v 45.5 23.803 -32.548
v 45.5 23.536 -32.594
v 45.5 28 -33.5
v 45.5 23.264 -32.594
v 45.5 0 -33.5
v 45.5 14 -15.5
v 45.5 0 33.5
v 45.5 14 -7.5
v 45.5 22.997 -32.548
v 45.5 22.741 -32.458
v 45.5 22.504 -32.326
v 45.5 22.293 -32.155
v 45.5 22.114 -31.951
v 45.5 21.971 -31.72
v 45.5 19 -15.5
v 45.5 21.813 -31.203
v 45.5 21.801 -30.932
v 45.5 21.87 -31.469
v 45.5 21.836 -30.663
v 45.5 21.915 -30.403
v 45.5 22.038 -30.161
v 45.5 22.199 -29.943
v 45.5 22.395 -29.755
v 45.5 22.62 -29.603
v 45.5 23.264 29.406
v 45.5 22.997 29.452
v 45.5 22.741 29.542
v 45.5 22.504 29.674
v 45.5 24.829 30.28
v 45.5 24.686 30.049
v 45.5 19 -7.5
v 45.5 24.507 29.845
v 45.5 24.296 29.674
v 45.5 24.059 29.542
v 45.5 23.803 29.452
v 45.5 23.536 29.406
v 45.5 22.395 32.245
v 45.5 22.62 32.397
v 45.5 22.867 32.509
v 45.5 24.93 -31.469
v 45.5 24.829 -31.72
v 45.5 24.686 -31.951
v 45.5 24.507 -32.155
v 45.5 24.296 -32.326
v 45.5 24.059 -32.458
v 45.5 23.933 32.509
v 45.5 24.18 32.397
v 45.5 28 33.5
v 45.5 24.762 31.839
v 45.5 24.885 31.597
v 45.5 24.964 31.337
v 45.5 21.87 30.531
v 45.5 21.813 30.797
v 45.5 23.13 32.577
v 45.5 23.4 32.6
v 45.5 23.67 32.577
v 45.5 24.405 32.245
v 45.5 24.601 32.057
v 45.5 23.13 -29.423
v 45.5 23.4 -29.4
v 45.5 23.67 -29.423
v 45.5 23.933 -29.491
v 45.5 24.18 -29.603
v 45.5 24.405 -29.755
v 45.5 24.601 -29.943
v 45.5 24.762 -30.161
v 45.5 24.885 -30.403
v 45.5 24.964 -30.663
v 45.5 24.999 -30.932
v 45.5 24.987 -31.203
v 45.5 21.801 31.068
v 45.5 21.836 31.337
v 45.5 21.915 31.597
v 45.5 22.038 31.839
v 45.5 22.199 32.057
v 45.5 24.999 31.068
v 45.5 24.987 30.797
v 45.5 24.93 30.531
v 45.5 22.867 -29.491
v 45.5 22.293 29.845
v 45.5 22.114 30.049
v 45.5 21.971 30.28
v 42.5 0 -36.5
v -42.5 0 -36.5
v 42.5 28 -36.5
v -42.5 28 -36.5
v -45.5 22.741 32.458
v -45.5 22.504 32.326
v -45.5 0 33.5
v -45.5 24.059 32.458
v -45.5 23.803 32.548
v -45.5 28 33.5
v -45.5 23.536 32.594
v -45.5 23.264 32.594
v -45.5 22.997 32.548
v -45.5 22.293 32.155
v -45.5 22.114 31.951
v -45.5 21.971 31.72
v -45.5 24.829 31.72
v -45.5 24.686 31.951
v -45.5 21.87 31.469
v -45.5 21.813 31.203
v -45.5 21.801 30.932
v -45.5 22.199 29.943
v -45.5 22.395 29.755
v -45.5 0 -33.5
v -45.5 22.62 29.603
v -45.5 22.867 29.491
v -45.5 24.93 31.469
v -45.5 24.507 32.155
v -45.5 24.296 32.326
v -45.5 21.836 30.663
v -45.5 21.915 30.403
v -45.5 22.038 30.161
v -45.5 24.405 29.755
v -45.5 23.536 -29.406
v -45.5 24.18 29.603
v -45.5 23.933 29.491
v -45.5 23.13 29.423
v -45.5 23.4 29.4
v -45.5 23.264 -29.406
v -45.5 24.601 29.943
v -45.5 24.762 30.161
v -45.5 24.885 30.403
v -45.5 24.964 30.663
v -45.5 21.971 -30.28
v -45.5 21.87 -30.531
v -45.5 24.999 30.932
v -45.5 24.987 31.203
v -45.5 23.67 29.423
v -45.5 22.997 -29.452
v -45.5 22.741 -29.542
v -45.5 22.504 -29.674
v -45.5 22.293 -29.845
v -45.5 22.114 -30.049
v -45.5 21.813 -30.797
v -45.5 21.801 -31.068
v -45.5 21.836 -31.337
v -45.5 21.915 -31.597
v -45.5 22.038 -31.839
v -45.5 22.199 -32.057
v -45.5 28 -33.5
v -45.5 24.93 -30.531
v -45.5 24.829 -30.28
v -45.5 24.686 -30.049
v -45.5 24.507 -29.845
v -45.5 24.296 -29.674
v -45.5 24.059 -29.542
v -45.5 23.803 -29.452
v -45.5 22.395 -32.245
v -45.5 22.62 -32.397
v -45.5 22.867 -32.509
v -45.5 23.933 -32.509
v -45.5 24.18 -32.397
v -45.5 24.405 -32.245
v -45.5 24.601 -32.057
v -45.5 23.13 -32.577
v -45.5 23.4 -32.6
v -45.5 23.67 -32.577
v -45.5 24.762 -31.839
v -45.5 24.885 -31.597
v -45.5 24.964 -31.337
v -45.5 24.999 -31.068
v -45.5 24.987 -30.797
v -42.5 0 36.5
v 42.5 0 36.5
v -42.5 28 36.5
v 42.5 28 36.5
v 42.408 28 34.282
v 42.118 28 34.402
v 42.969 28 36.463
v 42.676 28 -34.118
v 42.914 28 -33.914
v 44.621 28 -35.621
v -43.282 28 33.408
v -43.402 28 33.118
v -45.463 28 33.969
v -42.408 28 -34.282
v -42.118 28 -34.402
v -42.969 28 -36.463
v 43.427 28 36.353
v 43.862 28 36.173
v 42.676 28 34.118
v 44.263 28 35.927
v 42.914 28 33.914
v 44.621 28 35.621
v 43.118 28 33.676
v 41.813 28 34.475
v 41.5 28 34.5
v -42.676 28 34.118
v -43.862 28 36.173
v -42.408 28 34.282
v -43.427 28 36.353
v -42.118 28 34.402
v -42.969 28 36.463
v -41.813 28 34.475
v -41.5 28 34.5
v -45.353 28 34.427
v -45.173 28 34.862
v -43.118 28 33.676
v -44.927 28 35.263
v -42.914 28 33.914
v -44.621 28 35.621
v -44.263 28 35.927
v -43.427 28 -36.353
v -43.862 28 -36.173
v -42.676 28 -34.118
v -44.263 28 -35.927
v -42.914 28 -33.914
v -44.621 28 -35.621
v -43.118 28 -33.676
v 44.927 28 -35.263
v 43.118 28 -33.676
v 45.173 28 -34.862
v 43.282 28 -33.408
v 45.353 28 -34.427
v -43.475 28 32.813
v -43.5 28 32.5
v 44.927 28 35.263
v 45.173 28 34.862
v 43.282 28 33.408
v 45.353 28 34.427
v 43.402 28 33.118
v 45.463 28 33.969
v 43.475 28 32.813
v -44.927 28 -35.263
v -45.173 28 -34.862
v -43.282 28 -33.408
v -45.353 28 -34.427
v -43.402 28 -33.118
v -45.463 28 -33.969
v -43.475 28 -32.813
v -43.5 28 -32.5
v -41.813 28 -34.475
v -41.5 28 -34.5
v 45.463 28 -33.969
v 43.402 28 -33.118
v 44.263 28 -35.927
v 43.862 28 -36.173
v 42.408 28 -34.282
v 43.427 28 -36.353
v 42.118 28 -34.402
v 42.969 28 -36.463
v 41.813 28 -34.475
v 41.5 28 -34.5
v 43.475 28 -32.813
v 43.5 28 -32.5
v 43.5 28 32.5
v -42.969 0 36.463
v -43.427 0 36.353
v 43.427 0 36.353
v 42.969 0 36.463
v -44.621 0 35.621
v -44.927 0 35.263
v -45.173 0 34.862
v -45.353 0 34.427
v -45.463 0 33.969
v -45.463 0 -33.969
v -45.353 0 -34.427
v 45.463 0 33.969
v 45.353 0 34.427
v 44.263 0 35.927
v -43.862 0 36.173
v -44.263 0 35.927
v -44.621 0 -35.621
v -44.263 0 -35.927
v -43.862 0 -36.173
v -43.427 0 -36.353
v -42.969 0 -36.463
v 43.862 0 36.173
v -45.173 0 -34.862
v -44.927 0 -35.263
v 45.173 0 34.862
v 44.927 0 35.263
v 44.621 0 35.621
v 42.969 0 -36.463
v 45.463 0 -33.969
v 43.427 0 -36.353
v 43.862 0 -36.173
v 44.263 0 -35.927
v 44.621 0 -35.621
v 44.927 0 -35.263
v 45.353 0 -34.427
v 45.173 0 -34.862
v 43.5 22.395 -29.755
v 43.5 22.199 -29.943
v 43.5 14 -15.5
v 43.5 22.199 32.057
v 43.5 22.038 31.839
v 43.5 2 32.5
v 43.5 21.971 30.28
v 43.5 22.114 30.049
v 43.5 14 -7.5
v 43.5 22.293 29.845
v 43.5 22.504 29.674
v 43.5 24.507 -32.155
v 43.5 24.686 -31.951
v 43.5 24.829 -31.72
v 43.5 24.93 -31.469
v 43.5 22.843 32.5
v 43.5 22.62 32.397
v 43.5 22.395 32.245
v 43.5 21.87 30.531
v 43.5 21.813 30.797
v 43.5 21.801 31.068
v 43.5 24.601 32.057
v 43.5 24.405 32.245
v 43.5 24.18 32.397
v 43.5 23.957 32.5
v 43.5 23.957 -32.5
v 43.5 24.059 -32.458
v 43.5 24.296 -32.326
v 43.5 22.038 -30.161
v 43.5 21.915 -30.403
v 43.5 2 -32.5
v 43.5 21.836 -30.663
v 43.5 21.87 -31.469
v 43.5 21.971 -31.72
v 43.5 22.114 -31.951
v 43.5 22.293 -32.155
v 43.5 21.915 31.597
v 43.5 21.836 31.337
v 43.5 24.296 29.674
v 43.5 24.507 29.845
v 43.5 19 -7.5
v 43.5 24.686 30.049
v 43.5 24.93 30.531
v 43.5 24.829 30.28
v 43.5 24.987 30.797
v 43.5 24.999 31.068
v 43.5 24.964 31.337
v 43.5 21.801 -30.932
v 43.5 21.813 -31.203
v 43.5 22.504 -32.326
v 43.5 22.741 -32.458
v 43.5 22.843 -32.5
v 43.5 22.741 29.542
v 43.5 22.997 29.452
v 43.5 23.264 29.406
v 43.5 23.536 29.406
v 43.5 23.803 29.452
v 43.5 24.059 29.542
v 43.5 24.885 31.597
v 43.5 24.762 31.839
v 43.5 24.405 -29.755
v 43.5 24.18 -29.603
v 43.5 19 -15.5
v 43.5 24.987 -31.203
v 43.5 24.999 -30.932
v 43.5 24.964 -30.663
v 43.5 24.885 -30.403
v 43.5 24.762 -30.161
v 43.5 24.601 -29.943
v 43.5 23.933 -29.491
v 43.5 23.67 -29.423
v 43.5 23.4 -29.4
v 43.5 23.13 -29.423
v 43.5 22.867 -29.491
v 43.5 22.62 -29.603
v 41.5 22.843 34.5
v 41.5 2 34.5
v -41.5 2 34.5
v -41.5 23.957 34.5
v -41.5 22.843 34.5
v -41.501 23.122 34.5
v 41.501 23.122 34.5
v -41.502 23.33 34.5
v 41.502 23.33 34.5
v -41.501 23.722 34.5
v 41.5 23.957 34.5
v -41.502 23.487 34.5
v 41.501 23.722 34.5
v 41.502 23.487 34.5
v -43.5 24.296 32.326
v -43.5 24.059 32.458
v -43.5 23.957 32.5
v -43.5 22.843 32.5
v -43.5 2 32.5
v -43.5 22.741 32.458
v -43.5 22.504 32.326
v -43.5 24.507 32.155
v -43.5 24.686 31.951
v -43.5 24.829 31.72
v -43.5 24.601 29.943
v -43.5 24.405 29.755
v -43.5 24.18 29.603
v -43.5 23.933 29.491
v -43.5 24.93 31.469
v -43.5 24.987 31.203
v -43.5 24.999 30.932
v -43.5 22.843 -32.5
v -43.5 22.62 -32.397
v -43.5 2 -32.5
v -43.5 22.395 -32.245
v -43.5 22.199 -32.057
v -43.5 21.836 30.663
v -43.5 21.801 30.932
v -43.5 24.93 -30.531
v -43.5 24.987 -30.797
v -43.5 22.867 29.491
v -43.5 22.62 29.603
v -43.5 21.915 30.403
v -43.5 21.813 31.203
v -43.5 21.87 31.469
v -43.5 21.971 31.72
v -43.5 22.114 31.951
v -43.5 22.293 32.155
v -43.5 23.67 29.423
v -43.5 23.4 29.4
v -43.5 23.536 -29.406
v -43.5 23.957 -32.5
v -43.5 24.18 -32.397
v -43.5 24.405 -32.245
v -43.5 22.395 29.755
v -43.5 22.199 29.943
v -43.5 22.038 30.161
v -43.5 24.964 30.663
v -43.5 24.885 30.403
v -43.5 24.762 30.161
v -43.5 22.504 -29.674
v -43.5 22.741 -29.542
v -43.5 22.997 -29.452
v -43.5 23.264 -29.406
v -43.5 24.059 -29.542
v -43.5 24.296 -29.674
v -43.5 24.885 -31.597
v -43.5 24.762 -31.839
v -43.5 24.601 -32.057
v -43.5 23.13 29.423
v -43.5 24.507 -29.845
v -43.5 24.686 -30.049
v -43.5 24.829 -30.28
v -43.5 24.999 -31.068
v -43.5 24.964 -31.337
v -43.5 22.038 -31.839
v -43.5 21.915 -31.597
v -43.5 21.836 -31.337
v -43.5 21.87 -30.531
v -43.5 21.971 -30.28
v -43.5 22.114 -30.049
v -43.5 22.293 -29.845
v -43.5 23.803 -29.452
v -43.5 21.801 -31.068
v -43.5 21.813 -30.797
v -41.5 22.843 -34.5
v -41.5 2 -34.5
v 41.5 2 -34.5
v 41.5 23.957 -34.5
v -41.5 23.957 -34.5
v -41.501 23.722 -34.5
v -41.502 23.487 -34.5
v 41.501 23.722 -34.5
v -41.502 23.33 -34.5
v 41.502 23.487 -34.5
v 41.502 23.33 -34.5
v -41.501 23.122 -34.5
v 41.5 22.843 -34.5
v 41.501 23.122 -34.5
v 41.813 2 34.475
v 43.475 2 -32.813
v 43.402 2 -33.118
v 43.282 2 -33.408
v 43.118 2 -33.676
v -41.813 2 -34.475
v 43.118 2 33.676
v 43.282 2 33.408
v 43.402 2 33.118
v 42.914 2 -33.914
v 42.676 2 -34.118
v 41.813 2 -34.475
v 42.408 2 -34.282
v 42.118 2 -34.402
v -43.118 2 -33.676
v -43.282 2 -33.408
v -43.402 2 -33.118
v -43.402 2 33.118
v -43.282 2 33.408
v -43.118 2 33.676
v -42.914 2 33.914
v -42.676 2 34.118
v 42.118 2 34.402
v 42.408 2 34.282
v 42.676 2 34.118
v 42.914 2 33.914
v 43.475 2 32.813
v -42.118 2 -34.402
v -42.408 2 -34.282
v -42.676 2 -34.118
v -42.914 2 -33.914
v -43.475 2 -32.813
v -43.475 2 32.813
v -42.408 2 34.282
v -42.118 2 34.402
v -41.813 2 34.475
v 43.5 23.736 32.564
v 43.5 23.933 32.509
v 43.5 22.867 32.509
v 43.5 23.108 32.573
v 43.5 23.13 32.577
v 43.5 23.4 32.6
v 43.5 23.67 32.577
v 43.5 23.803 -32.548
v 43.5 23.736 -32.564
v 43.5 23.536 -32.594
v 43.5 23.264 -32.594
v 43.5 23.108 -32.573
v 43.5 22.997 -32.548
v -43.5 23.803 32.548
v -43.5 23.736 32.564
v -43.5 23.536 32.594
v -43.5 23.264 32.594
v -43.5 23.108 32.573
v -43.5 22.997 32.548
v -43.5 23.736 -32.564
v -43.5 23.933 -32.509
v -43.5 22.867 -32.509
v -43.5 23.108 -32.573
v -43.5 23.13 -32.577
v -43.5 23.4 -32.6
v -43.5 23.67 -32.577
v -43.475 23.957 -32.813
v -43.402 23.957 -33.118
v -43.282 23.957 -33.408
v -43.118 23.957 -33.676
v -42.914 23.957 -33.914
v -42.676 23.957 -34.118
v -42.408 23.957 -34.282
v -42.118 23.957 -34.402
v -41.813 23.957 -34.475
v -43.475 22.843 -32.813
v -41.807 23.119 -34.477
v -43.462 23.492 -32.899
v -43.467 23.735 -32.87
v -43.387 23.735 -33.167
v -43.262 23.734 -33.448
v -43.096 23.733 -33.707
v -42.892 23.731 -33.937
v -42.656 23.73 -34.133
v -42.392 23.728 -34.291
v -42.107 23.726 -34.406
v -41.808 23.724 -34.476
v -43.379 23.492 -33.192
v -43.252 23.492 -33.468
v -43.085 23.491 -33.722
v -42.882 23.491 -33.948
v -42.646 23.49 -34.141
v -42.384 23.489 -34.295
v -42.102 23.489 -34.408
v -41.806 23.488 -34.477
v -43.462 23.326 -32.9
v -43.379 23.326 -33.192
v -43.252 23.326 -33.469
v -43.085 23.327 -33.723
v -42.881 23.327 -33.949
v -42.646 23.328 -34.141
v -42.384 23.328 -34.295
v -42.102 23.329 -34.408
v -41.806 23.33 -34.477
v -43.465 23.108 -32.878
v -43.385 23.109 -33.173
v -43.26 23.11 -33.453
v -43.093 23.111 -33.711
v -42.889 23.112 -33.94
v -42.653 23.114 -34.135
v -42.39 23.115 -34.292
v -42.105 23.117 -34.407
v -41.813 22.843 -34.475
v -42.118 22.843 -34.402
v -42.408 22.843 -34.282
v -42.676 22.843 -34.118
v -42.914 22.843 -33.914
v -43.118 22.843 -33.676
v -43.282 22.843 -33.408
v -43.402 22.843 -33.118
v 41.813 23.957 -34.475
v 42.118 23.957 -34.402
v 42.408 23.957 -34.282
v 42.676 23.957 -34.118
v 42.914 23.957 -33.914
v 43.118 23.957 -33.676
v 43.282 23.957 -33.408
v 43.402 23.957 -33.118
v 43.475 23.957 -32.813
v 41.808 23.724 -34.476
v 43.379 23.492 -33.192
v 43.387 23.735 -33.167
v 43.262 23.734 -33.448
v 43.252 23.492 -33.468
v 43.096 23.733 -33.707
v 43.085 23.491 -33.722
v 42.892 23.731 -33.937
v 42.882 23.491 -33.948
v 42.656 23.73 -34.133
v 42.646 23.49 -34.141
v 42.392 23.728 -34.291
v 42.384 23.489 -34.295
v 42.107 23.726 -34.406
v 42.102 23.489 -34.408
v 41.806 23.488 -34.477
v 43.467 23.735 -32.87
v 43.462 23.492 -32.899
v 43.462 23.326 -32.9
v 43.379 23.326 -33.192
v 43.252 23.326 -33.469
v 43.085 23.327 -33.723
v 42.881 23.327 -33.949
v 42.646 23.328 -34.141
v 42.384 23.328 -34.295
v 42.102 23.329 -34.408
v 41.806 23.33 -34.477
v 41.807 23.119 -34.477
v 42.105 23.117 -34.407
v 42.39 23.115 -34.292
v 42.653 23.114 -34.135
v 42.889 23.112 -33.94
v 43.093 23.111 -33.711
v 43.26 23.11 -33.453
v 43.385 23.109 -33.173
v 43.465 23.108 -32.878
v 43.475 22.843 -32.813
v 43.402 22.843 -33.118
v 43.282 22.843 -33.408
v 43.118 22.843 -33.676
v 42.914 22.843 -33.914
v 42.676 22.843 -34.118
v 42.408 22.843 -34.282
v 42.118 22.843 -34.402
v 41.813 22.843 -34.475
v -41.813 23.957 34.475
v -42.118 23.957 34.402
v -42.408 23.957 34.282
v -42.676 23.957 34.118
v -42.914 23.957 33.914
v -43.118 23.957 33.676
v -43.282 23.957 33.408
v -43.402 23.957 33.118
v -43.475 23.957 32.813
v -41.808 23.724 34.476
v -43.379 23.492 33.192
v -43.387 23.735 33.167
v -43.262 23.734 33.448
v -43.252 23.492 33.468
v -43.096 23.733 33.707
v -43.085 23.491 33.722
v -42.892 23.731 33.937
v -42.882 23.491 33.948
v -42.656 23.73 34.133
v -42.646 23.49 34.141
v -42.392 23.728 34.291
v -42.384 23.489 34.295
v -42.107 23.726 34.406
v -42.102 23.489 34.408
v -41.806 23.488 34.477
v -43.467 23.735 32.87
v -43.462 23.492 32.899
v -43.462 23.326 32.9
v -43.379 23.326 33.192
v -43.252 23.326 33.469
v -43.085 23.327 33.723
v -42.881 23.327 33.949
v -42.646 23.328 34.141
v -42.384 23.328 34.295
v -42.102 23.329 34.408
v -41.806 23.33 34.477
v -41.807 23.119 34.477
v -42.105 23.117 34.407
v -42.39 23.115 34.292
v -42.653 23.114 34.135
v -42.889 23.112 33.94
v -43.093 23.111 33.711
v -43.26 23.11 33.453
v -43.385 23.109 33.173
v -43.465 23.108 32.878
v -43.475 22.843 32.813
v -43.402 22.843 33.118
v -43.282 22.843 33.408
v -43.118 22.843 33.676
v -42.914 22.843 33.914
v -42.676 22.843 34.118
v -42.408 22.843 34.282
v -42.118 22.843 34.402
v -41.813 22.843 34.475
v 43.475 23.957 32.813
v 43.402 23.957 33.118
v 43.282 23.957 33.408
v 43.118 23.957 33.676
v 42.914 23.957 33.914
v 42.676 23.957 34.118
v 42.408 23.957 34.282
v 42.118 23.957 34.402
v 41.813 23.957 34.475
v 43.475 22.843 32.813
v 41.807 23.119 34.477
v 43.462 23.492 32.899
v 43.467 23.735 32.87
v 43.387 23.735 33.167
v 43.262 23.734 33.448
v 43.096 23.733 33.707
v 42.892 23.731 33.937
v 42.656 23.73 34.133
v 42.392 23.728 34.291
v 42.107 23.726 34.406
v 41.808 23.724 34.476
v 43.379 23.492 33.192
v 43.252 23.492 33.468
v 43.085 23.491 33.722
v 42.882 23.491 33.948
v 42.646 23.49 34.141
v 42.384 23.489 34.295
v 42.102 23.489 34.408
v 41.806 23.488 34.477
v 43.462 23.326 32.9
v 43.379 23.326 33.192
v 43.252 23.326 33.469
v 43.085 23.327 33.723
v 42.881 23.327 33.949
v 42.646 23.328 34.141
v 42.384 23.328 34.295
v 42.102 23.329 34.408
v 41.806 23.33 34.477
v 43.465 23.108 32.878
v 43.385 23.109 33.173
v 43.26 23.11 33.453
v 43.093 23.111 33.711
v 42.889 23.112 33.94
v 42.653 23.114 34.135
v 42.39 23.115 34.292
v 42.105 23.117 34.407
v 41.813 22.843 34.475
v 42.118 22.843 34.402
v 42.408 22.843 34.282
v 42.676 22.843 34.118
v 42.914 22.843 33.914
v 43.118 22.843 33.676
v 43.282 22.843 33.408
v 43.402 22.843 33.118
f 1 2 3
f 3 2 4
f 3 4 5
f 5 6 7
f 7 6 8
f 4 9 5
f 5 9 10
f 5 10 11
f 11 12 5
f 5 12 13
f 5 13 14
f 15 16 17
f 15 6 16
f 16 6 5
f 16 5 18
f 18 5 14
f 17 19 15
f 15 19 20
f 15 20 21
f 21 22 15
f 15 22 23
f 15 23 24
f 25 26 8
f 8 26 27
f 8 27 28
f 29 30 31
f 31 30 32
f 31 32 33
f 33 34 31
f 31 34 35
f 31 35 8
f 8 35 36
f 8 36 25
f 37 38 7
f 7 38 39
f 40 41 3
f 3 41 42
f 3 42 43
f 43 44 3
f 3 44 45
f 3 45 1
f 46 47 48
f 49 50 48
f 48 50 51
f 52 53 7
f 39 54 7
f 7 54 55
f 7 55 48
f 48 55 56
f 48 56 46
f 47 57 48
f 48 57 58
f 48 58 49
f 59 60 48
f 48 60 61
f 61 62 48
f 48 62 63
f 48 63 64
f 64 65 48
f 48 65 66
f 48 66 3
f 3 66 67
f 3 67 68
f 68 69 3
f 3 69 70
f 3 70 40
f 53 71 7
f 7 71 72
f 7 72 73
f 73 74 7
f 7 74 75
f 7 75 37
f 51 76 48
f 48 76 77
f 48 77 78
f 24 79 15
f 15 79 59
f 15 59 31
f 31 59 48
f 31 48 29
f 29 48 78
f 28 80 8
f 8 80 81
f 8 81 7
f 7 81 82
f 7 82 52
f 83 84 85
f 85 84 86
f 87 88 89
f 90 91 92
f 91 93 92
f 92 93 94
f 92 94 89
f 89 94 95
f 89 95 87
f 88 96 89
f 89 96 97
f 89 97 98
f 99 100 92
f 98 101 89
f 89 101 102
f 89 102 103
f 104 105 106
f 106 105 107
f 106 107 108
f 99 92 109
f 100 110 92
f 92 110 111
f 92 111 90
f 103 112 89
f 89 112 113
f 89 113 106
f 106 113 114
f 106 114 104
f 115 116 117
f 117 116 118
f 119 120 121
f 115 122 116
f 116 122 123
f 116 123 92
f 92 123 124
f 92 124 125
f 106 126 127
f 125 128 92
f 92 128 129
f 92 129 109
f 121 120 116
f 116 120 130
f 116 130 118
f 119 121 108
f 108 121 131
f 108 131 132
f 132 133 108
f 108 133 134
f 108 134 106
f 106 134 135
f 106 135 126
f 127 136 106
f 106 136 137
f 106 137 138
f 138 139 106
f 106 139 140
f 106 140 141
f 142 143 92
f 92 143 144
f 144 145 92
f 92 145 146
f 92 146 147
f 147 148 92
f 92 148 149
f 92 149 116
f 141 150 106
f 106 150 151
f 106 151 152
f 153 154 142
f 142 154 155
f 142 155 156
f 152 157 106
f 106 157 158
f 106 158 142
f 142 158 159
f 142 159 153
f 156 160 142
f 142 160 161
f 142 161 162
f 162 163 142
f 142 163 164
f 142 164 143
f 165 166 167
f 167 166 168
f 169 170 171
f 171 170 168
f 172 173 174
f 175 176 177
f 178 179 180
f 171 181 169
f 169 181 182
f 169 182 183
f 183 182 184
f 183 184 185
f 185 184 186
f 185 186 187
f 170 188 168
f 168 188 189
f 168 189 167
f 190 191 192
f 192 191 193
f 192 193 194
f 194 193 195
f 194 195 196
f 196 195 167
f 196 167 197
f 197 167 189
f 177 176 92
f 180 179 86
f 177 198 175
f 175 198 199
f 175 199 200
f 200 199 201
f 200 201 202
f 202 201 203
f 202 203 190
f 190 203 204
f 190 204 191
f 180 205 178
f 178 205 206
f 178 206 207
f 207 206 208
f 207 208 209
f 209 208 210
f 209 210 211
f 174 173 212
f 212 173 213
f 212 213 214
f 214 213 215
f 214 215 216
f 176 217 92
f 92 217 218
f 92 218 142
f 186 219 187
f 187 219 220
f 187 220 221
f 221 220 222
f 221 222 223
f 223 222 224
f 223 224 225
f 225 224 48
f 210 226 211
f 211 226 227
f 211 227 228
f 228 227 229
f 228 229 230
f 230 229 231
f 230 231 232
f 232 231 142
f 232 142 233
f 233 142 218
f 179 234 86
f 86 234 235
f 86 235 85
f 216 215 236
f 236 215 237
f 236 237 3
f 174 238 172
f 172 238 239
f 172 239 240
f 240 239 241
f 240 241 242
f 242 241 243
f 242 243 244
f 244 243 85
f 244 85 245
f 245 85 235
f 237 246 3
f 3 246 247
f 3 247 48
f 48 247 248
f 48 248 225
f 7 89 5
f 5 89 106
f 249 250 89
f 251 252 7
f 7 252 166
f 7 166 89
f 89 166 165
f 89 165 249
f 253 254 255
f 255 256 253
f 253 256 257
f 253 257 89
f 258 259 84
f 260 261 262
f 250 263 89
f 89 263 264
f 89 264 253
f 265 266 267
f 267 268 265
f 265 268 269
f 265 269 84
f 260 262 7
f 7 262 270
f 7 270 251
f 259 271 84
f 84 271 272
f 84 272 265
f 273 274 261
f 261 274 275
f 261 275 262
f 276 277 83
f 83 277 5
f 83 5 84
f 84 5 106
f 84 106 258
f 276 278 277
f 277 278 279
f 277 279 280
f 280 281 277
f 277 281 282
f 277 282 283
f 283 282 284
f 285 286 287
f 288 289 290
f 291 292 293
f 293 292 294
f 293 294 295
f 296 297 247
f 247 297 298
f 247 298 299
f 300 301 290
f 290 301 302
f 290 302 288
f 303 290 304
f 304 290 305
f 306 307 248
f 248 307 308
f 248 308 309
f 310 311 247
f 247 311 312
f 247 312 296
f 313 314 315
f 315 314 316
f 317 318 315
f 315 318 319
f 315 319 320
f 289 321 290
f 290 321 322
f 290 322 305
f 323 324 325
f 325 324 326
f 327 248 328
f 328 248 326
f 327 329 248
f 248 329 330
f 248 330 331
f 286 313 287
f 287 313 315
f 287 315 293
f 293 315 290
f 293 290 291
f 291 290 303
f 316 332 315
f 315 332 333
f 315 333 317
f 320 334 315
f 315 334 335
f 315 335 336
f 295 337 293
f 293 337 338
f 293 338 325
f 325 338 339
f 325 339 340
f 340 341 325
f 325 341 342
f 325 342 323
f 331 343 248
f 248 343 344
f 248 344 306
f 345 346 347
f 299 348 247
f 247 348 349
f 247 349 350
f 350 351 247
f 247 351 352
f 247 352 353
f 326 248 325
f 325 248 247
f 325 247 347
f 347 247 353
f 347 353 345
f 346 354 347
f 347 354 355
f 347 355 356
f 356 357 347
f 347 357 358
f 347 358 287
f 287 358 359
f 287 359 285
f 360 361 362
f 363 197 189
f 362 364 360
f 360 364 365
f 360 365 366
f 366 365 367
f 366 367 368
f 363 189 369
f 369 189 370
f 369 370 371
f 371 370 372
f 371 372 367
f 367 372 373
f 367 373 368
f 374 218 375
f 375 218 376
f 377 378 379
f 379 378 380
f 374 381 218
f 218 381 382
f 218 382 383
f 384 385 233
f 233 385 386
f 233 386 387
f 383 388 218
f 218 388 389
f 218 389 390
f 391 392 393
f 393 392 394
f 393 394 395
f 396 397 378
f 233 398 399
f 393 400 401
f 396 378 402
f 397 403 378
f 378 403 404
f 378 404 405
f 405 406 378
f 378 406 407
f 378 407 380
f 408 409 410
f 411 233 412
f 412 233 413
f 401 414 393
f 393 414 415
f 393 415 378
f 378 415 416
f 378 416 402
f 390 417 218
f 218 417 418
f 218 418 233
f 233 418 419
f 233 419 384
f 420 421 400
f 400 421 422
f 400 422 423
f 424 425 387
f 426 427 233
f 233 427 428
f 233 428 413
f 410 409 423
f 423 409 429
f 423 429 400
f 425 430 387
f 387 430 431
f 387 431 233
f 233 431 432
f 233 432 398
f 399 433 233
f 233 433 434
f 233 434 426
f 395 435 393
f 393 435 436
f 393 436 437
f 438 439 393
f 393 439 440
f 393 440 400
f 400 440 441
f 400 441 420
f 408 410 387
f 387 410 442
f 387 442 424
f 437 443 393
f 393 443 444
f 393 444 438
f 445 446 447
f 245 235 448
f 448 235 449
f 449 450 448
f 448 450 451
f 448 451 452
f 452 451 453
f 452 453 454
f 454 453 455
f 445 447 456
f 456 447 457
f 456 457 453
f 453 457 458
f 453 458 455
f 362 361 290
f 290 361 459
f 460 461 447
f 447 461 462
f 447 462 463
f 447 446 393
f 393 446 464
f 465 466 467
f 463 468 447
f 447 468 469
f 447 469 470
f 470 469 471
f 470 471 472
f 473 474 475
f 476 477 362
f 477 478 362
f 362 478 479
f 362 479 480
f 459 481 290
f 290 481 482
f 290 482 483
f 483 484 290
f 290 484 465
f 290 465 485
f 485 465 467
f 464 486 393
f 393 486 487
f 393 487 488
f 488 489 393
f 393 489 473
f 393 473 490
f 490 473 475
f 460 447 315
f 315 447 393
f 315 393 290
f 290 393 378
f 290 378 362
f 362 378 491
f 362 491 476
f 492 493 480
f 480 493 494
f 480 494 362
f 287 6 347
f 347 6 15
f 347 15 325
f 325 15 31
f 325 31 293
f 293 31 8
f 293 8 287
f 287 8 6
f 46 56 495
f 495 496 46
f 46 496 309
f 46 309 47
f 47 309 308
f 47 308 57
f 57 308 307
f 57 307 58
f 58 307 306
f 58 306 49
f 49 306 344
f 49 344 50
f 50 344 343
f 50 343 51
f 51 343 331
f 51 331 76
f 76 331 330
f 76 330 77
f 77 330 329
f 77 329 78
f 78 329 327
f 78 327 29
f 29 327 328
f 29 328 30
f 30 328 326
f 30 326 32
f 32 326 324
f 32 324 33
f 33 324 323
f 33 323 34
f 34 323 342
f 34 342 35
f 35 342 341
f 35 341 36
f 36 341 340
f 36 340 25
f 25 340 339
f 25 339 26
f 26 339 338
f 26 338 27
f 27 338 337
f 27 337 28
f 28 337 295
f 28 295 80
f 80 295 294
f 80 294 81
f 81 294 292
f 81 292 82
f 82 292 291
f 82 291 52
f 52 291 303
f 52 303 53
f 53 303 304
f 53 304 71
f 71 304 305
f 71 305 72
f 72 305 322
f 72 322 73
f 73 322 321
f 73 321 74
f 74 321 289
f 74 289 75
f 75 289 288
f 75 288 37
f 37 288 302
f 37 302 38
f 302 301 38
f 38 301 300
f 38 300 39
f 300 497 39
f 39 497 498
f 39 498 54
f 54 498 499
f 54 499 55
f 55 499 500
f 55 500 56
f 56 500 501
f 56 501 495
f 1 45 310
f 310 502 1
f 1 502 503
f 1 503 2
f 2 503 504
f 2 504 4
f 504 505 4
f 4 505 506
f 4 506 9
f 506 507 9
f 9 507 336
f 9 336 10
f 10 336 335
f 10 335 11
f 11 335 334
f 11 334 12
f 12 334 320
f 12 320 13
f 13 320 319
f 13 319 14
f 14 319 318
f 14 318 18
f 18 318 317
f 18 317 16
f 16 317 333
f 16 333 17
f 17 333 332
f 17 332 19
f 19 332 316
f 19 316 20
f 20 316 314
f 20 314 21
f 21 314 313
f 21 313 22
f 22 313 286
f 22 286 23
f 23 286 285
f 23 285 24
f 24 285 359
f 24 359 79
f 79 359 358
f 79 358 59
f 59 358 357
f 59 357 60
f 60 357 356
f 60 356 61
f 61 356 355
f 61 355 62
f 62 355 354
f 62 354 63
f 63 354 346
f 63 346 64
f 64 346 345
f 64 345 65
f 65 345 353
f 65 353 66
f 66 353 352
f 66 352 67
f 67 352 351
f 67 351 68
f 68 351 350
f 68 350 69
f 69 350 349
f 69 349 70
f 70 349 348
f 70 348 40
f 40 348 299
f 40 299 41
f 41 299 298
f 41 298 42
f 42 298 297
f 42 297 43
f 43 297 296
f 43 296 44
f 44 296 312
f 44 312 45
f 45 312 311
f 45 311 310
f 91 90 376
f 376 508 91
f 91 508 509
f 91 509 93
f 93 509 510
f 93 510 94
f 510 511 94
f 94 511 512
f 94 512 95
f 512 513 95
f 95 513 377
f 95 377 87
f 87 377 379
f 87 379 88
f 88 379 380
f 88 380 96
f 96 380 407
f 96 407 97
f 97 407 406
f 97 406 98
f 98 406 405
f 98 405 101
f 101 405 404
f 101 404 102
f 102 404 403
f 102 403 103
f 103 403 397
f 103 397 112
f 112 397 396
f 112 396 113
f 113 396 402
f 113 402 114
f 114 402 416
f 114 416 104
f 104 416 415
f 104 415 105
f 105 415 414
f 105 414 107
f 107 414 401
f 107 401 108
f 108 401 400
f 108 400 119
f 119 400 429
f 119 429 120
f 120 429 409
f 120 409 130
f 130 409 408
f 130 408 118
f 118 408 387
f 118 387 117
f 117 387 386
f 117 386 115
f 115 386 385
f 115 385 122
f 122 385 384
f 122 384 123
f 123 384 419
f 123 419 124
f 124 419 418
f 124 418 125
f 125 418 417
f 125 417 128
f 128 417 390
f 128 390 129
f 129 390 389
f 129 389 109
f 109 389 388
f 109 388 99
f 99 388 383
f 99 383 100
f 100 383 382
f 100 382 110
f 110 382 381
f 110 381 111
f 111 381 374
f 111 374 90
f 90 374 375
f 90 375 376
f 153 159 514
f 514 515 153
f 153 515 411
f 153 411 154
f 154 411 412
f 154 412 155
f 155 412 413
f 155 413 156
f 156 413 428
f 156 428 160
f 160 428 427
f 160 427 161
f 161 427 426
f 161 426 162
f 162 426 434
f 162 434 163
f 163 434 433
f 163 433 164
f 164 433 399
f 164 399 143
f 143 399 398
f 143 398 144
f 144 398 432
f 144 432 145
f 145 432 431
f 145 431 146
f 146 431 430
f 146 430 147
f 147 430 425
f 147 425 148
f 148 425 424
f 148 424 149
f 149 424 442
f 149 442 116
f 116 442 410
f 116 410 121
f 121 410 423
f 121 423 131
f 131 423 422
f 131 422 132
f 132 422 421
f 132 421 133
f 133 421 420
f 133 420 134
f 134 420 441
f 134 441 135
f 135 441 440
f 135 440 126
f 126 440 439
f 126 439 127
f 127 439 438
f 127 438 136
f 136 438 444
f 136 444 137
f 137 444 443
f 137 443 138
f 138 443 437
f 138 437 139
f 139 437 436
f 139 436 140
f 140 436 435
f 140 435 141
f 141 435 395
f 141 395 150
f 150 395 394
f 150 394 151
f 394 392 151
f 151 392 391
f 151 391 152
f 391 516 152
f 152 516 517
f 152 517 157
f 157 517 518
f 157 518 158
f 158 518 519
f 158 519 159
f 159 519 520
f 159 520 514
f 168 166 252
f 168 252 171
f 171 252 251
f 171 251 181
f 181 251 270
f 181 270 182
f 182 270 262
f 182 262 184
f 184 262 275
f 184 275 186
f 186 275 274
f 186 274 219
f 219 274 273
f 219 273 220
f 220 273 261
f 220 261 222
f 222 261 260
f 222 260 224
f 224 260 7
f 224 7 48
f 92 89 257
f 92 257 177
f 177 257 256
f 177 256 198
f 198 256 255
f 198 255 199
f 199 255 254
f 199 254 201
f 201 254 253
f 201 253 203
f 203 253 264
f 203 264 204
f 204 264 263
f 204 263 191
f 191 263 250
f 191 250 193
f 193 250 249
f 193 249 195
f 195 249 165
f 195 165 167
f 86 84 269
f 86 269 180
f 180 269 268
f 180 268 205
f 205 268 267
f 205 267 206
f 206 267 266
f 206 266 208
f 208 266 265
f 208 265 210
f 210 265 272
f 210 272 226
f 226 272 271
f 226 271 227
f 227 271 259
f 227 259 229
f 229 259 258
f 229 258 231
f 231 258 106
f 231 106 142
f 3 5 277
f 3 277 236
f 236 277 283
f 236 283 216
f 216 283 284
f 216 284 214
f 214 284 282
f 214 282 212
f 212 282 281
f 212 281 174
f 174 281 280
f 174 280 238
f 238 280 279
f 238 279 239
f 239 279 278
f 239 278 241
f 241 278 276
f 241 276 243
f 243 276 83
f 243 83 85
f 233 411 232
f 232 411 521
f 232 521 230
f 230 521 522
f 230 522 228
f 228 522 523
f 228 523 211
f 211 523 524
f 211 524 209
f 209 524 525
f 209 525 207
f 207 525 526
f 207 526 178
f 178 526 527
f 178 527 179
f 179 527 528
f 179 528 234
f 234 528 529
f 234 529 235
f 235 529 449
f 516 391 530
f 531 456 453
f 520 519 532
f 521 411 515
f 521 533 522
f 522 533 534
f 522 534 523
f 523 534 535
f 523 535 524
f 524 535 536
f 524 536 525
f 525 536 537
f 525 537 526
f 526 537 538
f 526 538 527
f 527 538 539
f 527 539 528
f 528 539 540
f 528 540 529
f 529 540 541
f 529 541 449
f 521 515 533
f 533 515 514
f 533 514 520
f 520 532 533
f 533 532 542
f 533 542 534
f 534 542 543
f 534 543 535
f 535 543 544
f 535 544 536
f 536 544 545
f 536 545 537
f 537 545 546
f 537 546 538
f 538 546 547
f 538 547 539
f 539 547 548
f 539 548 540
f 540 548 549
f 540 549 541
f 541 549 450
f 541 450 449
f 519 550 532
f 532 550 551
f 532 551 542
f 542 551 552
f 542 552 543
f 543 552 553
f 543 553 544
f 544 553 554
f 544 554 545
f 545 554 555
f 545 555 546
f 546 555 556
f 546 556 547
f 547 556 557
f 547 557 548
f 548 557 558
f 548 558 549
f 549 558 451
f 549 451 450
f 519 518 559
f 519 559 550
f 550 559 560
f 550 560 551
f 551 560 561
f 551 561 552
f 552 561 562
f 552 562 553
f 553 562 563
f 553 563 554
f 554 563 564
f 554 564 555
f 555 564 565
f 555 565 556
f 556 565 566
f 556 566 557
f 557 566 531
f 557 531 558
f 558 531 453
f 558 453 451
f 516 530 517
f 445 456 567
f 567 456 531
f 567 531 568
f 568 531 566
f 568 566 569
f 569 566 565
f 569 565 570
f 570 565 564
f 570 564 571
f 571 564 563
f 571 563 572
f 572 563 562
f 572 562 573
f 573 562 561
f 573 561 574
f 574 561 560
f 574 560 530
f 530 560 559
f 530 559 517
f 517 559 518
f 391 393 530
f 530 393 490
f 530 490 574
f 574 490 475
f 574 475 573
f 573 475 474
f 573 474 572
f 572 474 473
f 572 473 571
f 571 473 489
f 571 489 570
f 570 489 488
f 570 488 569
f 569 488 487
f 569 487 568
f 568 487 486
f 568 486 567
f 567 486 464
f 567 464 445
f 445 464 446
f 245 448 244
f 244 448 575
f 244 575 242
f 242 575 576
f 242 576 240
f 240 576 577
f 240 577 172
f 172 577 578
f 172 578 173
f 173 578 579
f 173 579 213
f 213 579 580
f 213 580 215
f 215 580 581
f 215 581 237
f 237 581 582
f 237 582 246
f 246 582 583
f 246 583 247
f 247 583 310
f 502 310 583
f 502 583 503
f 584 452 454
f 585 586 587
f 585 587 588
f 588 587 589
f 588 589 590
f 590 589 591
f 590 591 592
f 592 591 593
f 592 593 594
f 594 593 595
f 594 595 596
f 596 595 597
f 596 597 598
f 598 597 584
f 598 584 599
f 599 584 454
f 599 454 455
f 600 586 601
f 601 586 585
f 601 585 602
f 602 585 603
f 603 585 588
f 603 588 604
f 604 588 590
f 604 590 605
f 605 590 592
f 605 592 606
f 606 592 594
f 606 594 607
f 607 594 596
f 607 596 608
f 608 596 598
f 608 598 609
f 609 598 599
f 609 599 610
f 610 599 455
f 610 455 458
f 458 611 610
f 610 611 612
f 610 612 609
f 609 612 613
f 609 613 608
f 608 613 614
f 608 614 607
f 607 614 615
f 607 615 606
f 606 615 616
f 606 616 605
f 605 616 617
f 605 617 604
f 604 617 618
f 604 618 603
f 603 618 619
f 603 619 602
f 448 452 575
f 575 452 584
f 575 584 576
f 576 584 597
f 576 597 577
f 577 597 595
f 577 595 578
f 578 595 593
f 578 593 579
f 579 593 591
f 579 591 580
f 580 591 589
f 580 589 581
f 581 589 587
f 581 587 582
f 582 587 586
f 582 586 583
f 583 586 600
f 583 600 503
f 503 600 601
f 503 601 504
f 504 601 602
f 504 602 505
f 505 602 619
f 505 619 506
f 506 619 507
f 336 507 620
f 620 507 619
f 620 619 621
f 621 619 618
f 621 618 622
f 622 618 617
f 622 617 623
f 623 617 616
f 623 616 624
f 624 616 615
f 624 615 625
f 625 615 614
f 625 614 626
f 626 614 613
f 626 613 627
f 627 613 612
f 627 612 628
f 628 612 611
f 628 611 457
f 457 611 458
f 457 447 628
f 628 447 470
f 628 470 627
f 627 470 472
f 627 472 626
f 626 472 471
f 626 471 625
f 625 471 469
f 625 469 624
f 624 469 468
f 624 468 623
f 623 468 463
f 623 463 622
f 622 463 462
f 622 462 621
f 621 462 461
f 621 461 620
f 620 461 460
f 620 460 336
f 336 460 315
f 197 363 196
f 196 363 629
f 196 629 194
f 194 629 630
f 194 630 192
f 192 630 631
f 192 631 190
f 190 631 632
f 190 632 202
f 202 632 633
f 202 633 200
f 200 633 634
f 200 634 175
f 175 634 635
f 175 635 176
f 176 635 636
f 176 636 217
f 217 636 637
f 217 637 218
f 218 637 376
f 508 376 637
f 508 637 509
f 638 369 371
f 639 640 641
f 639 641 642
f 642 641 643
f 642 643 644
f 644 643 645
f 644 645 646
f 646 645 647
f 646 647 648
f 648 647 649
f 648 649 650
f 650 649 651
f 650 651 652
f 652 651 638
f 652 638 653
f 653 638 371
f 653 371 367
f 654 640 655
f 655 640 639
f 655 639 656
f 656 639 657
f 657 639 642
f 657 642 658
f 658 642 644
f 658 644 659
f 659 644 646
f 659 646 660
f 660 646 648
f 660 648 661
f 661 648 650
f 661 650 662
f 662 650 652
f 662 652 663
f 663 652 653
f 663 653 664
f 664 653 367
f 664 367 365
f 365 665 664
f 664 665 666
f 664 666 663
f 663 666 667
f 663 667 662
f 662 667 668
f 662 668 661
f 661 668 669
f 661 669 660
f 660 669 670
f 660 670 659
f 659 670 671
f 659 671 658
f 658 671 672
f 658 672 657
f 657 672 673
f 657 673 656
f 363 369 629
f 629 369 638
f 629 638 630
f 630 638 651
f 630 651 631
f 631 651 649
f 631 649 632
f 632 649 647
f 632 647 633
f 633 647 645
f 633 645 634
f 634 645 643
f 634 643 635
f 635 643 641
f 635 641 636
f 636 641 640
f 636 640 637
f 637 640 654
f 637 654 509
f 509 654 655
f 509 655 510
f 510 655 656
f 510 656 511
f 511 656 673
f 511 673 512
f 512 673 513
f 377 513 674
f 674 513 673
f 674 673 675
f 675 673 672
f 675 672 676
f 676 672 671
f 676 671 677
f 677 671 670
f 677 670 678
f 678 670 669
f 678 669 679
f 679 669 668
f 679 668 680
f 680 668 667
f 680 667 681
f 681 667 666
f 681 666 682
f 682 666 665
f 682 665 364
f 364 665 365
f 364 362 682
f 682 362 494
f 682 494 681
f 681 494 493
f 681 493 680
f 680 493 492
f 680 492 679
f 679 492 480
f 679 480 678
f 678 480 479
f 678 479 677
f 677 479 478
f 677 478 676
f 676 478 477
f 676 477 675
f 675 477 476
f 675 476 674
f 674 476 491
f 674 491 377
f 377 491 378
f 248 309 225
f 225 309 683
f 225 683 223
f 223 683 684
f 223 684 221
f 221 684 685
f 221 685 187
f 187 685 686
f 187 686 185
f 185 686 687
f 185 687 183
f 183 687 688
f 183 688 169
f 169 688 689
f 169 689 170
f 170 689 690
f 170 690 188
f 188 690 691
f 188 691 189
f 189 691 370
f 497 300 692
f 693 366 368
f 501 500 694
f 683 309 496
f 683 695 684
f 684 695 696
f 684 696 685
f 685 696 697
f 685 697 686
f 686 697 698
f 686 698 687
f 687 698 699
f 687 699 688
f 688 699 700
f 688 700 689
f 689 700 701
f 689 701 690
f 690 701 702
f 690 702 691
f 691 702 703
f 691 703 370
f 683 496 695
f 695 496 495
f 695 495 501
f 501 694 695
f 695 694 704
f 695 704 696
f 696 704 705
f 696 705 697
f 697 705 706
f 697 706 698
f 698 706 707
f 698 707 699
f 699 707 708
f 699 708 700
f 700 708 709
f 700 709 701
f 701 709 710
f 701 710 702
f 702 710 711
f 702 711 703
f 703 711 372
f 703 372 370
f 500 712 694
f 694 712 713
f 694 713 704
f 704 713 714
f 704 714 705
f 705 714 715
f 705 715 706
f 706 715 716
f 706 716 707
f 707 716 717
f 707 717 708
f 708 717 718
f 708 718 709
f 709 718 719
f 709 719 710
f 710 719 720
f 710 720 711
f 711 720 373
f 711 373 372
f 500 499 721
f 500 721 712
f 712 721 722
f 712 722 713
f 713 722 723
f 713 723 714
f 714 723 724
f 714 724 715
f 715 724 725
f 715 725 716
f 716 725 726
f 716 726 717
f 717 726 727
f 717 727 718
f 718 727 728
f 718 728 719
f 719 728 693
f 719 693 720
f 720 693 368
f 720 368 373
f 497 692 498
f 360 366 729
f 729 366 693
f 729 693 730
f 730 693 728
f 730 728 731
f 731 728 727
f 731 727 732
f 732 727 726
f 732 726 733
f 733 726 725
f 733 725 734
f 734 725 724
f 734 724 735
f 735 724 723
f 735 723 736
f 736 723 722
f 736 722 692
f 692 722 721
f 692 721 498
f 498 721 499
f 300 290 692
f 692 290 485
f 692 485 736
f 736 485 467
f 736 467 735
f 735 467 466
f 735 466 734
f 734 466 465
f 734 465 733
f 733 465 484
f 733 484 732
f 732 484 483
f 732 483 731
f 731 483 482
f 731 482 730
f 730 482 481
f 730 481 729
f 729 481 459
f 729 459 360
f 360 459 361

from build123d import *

# Parameters (mm, degrees)
SKETCH_1_W               = 91
SKETCH_1_H               = 73
EXTRUDE_1_DEPTH          = 28
SKETCH_2_W               = 87
SKETCH_2_H               = 69
CUT_EXTRUDE_1_DEPTH      = 26
SKETCH_3_W               = 8
SKETCH_3_H               = 5
CUT_EXTRUDE_2_DEPTH      = 26
SKETCH_4_R               = 1.6
CUT_EXTRUDE_5_DEPTH      = 4
MIRROR_2_COPY_1_SKETCH_R = 1.6
MIRROR_2_COPY_1_DEPTH    = 4
FILLET_2_R               = 3
FILLET_3_R               = 3
FILLET_4_R               = 3
FILLET_5_R               = 3
FILLET_6_R               = 2
FILLET_7_R               = 2
FILLET_8_R               = 2
FILLET_9_R               = 2


with BuildPart() as part:
    # 草图1 → 凸台-拉伸1 (new body)
    with BuildSketch(Plane(origin=(0, 0, 0), x_dir=(1, 0, 0), z_dir=(0, 1, 0))):
        Rectangle(SKETCH_1_W, SKETCH_1_H)
    extrude(amount=EXTRUDE_1_DEPTH)

    # 草图2 → 切除-拉伸1 (cut)
    with BuildSketch(Plane(origin=(0, 28, 0), x_dir=(1, 0, 0), z_dir=(0, 1, 0))):
        Rectangle(SKETCH_2_W, SKETCH_2_H)
    extrude(amount=-CUT_EXTRUDE_1_DEPTH, mode=Mode.SUBTRACT)

    # 草图3 → 切除-拉伸2 (cut)
    with BuildSketch(Plane.ZY.offset(-43.5)):
        with Locations((-11.5, 16.5)):
            Rectangle(SKETCH_3_W, SKETCH_3_H)
    extrude(amount=-CUT_EXTRUDE_2_DEPTH, mode=Mode.SUBTRACT)

    # 草图4 → 切除-拉伸5 (cut)
    with BuildSketch(Plane.ZY.offset(-43.5)):
        with Locations((31, 23.4)):
            Circle(SKETCH_4_R)
    cut_extrude_5 = extrude(amount=-CUT_EXTRUDE_5_DEPTH, mode=Mode.SUBTRACT)

    # 镜向1: 切除-拉伸5 across plane
    add(cut_extrude_5.mirror(Plane.XY), mode=Mode.SUBTRACT)

    # 镜向2: 切除-拉伸5 across plane
    add(cut_extrude_5.mirror(Plane(origin=(0, 0, 0), x_dir=(0, 0, 1), z_dir=(1, 0, 0))), mode=Mode.SUBTRACT)

    # 镜向2 copy 1 sketch → 镜向2 copy 1 (cut)
    with BuildSketch(Plane(origin=(-43.5, 0, 0), x_dir=(0, 0, -1), z_dir=(1, 0, 0))):
        with Locations((31, 23.4)):
            Circle(MIRROR_2_COPY_1_SKETCH_R)
    extrude(amount=-MIRROR_2_COPY_1_DEPTH, mode=Mode.SUBTRACT)

    # 圆角2
    fillet_2_edges = [part.edges().sort_by_distance(p)[0] for p in [
        (45.5, 14, 36.5),
    ]]
    fillet(fillet_2_edges, radius=FILLET_2_R)

    # 圆角3
    fillet_3_edges = [part.edges().sort_by_distance(p)[0] for p in [
        (-45.5, 14, 36.5),
    ]]
    fillet(fillet_3_edges, radius=FILLET_3_R)

    # 圆角4
    fillet_4_edges = [part.edges().sort_by_distance(p)[0] for p in [
        (-45.5, 14, -36.5),
    ]]
    fillet(fillet_4_edges, radius=FILLET_4_R)

    # 圆角5
    fillet_5_edges = [part.edges().sort_by_distance(p)[0] for p in [
        (45.5, 14, -36.5),
    ]]
    fillet(fillet_5_edges, radius=FILLET_5_R)

    # 圆角6
    fillet_6_edges = [part.edges().sort_by_distance(p)[0] for p in [
        (-43.5, 15, -34.5),
    ]]
    fillet(fillet_6_edges, radius=FILLET_6_R)

    # 圆角7
    fillet_7_edges = [part.edges().sort_by_distance(p)[0] for p in [
        (43.5, 15, -34.5),
    ]]
    fillet(fillet_7_edges, radius=FILLET_7_R)

    # 圆角8
    fillet_8_edges = [part.edges().sort_by_distance(p)[0] for p in [
        (-43.5, 15, 34.5),
    ]]
    fillet(fillet_8_edges, radius=FILLET_8_R)

    # 圆角9
    fillet_9_edges = [part.edges().sort_by_distance(p)[0] for p in [
        (43.5, 15, 34.5),
    ]]
    fillet(fillet_9_edges, radius=FILLET_9_R)


solid = part.part
